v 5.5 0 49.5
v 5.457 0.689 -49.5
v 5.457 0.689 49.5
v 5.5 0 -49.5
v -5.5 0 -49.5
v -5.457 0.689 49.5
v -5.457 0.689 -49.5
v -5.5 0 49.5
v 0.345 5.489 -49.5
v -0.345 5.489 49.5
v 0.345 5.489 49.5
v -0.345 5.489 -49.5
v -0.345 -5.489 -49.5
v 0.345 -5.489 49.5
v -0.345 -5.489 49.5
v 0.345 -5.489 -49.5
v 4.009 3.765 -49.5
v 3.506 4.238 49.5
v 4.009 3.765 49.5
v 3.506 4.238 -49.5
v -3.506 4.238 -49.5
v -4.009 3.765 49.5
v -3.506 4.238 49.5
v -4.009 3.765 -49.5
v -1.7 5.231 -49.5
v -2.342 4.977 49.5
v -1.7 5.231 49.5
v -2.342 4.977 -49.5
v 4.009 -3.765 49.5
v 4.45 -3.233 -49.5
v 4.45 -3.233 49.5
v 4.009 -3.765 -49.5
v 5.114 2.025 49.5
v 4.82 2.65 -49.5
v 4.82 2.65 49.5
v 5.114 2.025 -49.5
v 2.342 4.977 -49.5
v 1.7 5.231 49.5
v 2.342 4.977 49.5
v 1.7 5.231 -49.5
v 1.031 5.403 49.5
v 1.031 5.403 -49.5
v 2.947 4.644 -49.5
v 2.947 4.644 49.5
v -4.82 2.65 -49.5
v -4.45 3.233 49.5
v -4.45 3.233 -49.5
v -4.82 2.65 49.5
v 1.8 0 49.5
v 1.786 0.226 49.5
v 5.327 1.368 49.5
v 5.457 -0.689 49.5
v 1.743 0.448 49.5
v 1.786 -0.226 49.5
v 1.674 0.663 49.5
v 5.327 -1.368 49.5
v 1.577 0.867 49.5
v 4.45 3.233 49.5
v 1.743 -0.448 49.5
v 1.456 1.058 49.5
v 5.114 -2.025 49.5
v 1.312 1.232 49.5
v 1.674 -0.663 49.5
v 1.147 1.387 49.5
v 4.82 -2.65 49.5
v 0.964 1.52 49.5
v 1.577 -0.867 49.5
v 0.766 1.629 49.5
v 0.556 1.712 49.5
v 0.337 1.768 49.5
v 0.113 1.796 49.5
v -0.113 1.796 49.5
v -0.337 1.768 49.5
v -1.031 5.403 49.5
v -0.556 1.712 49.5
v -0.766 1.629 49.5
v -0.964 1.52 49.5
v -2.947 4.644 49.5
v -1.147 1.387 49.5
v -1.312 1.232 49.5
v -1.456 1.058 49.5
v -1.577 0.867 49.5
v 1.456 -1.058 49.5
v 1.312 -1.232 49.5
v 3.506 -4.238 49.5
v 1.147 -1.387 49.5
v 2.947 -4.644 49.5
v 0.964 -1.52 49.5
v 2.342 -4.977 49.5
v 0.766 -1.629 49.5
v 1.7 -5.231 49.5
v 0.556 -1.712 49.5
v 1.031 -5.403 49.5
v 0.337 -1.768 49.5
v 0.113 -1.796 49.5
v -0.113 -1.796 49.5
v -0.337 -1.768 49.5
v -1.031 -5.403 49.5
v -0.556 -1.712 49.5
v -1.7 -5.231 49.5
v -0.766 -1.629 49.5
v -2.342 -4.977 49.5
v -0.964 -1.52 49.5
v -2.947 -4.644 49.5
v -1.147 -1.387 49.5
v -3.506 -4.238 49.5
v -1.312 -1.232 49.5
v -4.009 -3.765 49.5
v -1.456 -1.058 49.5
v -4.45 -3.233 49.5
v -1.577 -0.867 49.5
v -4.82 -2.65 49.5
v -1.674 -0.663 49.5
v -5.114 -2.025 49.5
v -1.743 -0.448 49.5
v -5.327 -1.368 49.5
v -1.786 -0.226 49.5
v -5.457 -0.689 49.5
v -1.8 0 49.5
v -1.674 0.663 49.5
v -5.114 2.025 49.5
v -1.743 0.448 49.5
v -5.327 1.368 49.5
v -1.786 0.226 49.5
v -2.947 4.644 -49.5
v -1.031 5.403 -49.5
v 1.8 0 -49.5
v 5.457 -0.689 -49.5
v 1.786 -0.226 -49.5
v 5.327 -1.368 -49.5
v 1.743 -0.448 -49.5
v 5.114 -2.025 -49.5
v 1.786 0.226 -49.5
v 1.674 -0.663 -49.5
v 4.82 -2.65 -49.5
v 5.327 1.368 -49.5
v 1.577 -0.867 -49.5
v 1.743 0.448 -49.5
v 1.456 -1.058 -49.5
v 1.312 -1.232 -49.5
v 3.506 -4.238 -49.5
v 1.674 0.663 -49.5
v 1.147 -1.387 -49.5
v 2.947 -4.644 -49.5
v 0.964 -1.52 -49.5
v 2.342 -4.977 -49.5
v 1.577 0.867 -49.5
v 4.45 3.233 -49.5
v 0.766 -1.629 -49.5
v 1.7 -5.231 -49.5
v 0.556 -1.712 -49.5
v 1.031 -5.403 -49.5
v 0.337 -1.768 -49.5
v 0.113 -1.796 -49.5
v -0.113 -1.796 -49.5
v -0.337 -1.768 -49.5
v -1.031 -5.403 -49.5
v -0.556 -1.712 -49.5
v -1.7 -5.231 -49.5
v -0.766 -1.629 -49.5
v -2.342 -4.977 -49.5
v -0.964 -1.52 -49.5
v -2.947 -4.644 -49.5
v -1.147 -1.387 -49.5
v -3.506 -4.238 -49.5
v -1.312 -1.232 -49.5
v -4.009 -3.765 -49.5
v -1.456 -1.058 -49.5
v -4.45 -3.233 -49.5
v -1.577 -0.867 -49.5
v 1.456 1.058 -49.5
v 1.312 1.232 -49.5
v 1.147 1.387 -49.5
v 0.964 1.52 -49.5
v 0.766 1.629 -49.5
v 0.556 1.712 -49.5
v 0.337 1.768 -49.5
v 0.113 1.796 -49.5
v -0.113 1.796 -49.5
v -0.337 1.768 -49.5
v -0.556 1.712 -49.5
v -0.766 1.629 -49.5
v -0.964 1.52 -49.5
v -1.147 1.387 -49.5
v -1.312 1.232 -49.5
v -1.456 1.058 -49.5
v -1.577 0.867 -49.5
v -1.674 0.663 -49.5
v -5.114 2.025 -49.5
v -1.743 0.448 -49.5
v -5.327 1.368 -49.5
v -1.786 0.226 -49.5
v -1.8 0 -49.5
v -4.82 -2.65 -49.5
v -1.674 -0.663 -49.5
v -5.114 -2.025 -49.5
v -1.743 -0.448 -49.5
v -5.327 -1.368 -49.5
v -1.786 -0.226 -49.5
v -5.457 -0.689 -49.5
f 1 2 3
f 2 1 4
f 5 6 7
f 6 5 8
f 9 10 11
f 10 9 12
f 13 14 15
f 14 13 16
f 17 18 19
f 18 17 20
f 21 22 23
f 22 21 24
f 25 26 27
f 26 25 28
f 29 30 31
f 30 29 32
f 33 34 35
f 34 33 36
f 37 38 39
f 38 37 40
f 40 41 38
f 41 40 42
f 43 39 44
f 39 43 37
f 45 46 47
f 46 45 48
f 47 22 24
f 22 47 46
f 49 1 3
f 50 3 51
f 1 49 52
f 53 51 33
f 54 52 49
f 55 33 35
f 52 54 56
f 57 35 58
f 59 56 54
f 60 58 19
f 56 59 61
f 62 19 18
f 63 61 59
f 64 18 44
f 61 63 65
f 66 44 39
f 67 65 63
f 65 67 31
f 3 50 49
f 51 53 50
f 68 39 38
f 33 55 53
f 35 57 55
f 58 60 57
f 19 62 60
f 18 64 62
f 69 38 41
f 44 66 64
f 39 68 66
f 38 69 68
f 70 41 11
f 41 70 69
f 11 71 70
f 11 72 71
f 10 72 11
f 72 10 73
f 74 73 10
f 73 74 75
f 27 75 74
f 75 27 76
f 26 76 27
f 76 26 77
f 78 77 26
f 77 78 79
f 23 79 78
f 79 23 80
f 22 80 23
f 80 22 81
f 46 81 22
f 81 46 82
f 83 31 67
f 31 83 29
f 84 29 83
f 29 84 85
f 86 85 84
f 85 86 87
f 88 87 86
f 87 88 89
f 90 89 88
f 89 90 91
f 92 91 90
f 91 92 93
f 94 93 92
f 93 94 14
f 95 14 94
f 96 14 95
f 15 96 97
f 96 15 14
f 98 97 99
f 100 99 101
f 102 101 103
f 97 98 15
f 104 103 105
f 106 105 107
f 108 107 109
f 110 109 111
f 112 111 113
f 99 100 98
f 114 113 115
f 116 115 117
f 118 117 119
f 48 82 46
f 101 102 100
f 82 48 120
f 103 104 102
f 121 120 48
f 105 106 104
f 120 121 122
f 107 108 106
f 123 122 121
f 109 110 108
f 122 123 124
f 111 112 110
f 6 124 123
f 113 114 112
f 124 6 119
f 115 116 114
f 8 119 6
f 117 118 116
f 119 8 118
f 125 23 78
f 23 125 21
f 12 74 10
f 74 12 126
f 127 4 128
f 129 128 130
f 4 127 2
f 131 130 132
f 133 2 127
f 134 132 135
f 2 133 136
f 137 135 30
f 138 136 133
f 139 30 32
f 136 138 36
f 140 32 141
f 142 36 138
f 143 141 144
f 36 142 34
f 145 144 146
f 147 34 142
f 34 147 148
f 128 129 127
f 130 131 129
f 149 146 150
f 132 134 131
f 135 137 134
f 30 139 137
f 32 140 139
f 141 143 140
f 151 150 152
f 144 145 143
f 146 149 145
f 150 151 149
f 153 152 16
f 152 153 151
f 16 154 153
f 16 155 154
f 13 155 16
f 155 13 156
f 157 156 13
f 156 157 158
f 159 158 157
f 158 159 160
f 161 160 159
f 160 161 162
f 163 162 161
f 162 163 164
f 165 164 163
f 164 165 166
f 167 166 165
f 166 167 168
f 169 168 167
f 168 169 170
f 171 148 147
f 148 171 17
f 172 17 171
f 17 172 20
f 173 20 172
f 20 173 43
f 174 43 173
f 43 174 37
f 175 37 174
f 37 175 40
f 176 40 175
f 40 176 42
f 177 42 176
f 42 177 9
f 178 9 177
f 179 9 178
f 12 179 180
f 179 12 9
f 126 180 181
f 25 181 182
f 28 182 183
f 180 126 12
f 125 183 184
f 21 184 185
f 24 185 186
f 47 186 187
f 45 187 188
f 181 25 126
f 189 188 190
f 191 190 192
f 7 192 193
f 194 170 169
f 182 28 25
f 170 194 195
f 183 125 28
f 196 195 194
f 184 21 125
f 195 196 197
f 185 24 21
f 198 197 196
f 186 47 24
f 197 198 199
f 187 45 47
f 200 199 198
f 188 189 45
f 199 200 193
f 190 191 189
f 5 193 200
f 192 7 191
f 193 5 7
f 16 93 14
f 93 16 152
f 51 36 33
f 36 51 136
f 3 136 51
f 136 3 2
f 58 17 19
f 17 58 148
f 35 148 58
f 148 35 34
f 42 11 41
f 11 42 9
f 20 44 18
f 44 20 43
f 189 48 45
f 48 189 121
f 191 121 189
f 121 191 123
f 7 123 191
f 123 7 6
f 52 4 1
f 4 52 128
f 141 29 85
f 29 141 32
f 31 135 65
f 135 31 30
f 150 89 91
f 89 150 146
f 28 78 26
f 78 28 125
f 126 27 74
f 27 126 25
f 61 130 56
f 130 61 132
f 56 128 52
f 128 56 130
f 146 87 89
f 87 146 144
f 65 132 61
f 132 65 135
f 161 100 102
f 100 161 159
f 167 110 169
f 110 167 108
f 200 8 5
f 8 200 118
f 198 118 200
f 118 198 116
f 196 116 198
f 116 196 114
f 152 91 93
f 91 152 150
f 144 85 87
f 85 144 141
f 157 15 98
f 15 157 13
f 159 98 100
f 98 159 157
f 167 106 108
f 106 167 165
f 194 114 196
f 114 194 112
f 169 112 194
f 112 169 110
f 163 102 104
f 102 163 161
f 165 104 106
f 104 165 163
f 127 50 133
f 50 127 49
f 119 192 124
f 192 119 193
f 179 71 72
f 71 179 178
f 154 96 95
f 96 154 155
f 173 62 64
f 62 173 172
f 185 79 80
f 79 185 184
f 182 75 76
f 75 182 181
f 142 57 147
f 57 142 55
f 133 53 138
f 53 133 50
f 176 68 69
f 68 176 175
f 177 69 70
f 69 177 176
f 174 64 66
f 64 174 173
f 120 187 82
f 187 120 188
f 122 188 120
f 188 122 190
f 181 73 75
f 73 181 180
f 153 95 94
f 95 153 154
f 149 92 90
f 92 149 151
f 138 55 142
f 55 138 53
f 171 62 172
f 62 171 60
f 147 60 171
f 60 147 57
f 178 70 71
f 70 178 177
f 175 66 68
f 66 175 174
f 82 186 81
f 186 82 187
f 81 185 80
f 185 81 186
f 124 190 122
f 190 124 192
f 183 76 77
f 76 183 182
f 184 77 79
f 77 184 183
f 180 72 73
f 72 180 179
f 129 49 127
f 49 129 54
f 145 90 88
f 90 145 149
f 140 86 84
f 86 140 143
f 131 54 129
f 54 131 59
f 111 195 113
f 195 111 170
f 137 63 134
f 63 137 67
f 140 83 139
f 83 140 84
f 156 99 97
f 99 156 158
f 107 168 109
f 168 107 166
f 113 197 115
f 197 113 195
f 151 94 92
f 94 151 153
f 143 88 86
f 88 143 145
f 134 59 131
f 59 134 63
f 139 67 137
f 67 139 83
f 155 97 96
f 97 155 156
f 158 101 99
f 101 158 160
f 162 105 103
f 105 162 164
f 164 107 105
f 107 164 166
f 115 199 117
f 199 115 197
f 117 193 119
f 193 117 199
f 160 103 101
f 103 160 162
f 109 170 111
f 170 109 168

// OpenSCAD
$fn = 50;


difference() {
	union() {
		translate(v = [0, 0, -49.5000000000]) {
			cylinder(h = 99, r = 5.5000000000);
		}
	}
	union() {
		translate(v = [0, 0, -100.0000000000]) {
			cylinder(h = 200, r = 1.8000000000);
		}
	}
}
